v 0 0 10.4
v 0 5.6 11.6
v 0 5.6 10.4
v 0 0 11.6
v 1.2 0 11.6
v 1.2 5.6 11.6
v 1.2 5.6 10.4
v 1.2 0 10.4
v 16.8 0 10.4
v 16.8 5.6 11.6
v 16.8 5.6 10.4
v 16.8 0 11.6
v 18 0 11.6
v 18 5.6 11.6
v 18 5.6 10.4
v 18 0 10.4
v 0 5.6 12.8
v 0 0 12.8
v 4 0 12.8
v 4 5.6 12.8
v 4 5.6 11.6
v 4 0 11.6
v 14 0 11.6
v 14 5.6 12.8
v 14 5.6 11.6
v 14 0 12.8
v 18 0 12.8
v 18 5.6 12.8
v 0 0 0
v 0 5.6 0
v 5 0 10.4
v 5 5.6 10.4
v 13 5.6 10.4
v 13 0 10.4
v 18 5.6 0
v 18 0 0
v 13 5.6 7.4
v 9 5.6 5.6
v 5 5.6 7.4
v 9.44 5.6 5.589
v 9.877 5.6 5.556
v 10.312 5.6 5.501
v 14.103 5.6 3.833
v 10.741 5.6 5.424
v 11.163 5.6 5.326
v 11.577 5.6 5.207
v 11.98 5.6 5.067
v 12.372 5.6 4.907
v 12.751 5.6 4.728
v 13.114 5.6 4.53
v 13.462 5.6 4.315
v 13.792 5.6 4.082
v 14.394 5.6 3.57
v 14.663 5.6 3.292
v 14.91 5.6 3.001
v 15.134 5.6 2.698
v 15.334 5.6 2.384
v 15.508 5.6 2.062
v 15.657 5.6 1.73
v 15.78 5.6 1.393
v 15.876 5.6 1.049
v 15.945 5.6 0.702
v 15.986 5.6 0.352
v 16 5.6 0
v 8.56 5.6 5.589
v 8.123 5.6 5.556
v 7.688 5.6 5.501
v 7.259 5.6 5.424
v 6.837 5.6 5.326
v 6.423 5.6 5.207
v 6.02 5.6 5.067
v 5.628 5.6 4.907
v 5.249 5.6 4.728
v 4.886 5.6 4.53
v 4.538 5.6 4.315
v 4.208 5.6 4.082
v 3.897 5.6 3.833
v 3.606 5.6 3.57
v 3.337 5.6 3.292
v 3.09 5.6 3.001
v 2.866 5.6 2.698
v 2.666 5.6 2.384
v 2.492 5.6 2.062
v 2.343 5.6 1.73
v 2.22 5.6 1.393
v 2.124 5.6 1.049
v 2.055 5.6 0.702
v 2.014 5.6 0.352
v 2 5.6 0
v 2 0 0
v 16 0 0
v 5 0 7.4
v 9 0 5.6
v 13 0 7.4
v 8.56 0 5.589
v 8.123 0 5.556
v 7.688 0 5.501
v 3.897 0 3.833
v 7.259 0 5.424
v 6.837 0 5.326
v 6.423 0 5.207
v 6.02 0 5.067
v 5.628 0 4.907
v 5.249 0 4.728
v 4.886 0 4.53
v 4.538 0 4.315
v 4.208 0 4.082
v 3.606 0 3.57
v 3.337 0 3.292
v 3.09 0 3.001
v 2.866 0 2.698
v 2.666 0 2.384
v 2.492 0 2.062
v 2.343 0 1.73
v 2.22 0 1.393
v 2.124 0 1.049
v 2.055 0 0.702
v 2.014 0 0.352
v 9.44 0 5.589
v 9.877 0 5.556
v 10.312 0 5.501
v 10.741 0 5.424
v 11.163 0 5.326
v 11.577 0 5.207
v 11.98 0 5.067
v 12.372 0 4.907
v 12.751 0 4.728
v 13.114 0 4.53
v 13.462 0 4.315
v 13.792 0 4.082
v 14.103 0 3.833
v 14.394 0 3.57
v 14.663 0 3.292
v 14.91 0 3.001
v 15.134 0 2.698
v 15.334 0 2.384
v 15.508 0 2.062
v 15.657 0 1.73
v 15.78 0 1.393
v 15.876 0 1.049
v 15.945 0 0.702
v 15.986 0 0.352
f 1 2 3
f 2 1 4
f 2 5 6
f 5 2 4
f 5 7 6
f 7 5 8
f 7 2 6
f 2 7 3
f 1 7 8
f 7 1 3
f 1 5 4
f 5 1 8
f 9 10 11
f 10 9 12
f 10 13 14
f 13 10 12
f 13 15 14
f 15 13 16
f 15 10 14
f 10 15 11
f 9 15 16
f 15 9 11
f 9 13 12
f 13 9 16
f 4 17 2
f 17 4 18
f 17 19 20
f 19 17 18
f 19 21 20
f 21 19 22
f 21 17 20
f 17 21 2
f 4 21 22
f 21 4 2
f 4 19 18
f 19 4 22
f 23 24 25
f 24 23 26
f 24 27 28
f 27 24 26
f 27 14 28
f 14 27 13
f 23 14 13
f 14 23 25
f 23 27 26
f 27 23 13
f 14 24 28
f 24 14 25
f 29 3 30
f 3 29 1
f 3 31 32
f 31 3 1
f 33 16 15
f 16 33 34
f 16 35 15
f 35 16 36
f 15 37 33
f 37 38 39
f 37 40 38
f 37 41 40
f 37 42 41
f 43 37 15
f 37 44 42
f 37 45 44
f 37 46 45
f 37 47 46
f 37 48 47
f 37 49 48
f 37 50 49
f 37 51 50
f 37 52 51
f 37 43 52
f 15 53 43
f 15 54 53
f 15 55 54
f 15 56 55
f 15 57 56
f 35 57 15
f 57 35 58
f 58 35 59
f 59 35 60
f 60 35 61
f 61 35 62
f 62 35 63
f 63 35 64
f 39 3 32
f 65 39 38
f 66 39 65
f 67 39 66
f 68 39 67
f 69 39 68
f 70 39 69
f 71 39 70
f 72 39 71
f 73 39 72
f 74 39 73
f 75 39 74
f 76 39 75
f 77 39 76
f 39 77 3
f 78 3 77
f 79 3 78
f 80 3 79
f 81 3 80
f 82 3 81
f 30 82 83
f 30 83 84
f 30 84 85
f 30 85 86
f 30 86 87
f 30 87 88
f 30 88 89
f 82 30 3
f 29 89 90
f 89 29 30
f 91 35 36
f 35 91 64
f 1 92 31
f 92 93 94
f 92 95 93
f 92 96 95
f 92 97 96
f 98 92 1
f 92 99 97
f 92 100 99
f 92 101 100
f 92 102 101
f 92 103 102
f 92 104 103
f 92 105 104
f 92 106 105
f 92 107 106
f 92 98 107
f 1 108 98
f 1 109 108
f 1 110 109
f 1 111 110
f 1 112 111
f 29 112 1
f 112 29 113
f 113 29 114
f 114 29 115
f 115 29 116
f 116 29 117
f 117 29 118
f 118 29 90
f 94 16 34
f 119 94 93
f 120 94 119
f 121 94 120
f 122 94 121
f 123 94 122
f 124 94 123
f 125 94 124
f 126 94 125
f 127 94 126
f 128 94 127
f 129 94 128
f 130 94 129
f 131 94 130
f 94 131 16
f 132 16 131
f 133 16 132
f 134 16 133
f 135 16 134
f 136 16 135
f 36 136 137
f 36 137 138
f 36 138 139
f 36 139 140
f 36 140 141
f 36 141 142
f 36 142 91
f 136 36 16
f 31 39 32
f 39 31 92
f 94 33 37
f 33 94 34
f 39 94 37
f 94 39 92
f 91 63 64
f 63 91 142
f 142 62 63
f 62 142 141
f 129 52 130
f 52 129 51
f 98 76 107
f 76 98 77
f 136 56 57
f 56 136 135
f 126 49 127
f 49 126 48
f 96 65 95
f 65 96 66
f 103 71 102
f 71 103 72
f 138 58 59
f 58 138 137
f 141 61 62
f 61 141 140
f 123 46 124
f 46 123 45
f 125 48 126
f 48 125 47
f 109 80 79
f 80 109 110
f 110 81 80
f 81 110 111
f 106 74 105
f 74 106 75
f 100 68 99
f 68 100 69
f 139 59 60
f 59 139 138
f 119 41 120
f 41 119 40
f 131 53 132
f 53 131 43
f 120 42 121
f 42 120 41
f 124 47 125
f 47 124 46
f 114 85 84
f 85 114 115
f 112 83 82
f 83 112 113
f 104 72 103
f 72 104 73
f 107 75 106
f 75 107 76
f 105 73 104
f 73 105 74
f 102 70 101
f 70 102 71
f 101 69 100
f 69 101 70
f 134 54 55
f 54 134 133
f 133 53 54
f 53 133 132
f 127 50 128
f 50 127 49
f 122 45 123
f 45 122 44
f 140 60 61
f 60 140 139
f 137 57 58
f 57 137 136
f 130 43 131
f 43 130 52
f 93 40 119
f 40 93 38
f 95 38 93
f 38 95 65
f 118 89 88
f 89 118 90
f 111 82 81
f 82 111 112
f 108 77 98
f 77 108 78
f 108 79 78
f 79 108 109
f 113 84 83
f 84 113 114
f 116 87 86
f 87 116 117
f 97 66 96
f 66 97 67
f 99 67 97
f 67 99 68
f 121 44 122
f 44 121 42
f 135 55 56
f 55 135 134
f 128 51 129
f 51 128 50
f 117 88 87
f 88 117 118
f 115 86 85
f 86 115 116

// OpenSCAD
difference() {

union() {

cube([18,5.6,10.4]);

translate([0,0,10.4]) {
    cube([1.2,5.6,1.2]);
    translate([18-1.2,0,0]) cube([1.2,5.6,1.2]);
}

translate([0,0,10.4+1.2]) {
    cube([4,5.6,1.2]);
    translate([18-4,0,0]) cube([4,5.6,1.2]);
}



}//union

translate([18/2-4,-1,10.4-3]) cube([8,5.6+2,4]);

translate([18/2,5.6+1,0]) scale([1,1,0.8]) rotate([90,0,0])  cylinder($fn=100, h=5.6+2, d=18-4);


}//difference
